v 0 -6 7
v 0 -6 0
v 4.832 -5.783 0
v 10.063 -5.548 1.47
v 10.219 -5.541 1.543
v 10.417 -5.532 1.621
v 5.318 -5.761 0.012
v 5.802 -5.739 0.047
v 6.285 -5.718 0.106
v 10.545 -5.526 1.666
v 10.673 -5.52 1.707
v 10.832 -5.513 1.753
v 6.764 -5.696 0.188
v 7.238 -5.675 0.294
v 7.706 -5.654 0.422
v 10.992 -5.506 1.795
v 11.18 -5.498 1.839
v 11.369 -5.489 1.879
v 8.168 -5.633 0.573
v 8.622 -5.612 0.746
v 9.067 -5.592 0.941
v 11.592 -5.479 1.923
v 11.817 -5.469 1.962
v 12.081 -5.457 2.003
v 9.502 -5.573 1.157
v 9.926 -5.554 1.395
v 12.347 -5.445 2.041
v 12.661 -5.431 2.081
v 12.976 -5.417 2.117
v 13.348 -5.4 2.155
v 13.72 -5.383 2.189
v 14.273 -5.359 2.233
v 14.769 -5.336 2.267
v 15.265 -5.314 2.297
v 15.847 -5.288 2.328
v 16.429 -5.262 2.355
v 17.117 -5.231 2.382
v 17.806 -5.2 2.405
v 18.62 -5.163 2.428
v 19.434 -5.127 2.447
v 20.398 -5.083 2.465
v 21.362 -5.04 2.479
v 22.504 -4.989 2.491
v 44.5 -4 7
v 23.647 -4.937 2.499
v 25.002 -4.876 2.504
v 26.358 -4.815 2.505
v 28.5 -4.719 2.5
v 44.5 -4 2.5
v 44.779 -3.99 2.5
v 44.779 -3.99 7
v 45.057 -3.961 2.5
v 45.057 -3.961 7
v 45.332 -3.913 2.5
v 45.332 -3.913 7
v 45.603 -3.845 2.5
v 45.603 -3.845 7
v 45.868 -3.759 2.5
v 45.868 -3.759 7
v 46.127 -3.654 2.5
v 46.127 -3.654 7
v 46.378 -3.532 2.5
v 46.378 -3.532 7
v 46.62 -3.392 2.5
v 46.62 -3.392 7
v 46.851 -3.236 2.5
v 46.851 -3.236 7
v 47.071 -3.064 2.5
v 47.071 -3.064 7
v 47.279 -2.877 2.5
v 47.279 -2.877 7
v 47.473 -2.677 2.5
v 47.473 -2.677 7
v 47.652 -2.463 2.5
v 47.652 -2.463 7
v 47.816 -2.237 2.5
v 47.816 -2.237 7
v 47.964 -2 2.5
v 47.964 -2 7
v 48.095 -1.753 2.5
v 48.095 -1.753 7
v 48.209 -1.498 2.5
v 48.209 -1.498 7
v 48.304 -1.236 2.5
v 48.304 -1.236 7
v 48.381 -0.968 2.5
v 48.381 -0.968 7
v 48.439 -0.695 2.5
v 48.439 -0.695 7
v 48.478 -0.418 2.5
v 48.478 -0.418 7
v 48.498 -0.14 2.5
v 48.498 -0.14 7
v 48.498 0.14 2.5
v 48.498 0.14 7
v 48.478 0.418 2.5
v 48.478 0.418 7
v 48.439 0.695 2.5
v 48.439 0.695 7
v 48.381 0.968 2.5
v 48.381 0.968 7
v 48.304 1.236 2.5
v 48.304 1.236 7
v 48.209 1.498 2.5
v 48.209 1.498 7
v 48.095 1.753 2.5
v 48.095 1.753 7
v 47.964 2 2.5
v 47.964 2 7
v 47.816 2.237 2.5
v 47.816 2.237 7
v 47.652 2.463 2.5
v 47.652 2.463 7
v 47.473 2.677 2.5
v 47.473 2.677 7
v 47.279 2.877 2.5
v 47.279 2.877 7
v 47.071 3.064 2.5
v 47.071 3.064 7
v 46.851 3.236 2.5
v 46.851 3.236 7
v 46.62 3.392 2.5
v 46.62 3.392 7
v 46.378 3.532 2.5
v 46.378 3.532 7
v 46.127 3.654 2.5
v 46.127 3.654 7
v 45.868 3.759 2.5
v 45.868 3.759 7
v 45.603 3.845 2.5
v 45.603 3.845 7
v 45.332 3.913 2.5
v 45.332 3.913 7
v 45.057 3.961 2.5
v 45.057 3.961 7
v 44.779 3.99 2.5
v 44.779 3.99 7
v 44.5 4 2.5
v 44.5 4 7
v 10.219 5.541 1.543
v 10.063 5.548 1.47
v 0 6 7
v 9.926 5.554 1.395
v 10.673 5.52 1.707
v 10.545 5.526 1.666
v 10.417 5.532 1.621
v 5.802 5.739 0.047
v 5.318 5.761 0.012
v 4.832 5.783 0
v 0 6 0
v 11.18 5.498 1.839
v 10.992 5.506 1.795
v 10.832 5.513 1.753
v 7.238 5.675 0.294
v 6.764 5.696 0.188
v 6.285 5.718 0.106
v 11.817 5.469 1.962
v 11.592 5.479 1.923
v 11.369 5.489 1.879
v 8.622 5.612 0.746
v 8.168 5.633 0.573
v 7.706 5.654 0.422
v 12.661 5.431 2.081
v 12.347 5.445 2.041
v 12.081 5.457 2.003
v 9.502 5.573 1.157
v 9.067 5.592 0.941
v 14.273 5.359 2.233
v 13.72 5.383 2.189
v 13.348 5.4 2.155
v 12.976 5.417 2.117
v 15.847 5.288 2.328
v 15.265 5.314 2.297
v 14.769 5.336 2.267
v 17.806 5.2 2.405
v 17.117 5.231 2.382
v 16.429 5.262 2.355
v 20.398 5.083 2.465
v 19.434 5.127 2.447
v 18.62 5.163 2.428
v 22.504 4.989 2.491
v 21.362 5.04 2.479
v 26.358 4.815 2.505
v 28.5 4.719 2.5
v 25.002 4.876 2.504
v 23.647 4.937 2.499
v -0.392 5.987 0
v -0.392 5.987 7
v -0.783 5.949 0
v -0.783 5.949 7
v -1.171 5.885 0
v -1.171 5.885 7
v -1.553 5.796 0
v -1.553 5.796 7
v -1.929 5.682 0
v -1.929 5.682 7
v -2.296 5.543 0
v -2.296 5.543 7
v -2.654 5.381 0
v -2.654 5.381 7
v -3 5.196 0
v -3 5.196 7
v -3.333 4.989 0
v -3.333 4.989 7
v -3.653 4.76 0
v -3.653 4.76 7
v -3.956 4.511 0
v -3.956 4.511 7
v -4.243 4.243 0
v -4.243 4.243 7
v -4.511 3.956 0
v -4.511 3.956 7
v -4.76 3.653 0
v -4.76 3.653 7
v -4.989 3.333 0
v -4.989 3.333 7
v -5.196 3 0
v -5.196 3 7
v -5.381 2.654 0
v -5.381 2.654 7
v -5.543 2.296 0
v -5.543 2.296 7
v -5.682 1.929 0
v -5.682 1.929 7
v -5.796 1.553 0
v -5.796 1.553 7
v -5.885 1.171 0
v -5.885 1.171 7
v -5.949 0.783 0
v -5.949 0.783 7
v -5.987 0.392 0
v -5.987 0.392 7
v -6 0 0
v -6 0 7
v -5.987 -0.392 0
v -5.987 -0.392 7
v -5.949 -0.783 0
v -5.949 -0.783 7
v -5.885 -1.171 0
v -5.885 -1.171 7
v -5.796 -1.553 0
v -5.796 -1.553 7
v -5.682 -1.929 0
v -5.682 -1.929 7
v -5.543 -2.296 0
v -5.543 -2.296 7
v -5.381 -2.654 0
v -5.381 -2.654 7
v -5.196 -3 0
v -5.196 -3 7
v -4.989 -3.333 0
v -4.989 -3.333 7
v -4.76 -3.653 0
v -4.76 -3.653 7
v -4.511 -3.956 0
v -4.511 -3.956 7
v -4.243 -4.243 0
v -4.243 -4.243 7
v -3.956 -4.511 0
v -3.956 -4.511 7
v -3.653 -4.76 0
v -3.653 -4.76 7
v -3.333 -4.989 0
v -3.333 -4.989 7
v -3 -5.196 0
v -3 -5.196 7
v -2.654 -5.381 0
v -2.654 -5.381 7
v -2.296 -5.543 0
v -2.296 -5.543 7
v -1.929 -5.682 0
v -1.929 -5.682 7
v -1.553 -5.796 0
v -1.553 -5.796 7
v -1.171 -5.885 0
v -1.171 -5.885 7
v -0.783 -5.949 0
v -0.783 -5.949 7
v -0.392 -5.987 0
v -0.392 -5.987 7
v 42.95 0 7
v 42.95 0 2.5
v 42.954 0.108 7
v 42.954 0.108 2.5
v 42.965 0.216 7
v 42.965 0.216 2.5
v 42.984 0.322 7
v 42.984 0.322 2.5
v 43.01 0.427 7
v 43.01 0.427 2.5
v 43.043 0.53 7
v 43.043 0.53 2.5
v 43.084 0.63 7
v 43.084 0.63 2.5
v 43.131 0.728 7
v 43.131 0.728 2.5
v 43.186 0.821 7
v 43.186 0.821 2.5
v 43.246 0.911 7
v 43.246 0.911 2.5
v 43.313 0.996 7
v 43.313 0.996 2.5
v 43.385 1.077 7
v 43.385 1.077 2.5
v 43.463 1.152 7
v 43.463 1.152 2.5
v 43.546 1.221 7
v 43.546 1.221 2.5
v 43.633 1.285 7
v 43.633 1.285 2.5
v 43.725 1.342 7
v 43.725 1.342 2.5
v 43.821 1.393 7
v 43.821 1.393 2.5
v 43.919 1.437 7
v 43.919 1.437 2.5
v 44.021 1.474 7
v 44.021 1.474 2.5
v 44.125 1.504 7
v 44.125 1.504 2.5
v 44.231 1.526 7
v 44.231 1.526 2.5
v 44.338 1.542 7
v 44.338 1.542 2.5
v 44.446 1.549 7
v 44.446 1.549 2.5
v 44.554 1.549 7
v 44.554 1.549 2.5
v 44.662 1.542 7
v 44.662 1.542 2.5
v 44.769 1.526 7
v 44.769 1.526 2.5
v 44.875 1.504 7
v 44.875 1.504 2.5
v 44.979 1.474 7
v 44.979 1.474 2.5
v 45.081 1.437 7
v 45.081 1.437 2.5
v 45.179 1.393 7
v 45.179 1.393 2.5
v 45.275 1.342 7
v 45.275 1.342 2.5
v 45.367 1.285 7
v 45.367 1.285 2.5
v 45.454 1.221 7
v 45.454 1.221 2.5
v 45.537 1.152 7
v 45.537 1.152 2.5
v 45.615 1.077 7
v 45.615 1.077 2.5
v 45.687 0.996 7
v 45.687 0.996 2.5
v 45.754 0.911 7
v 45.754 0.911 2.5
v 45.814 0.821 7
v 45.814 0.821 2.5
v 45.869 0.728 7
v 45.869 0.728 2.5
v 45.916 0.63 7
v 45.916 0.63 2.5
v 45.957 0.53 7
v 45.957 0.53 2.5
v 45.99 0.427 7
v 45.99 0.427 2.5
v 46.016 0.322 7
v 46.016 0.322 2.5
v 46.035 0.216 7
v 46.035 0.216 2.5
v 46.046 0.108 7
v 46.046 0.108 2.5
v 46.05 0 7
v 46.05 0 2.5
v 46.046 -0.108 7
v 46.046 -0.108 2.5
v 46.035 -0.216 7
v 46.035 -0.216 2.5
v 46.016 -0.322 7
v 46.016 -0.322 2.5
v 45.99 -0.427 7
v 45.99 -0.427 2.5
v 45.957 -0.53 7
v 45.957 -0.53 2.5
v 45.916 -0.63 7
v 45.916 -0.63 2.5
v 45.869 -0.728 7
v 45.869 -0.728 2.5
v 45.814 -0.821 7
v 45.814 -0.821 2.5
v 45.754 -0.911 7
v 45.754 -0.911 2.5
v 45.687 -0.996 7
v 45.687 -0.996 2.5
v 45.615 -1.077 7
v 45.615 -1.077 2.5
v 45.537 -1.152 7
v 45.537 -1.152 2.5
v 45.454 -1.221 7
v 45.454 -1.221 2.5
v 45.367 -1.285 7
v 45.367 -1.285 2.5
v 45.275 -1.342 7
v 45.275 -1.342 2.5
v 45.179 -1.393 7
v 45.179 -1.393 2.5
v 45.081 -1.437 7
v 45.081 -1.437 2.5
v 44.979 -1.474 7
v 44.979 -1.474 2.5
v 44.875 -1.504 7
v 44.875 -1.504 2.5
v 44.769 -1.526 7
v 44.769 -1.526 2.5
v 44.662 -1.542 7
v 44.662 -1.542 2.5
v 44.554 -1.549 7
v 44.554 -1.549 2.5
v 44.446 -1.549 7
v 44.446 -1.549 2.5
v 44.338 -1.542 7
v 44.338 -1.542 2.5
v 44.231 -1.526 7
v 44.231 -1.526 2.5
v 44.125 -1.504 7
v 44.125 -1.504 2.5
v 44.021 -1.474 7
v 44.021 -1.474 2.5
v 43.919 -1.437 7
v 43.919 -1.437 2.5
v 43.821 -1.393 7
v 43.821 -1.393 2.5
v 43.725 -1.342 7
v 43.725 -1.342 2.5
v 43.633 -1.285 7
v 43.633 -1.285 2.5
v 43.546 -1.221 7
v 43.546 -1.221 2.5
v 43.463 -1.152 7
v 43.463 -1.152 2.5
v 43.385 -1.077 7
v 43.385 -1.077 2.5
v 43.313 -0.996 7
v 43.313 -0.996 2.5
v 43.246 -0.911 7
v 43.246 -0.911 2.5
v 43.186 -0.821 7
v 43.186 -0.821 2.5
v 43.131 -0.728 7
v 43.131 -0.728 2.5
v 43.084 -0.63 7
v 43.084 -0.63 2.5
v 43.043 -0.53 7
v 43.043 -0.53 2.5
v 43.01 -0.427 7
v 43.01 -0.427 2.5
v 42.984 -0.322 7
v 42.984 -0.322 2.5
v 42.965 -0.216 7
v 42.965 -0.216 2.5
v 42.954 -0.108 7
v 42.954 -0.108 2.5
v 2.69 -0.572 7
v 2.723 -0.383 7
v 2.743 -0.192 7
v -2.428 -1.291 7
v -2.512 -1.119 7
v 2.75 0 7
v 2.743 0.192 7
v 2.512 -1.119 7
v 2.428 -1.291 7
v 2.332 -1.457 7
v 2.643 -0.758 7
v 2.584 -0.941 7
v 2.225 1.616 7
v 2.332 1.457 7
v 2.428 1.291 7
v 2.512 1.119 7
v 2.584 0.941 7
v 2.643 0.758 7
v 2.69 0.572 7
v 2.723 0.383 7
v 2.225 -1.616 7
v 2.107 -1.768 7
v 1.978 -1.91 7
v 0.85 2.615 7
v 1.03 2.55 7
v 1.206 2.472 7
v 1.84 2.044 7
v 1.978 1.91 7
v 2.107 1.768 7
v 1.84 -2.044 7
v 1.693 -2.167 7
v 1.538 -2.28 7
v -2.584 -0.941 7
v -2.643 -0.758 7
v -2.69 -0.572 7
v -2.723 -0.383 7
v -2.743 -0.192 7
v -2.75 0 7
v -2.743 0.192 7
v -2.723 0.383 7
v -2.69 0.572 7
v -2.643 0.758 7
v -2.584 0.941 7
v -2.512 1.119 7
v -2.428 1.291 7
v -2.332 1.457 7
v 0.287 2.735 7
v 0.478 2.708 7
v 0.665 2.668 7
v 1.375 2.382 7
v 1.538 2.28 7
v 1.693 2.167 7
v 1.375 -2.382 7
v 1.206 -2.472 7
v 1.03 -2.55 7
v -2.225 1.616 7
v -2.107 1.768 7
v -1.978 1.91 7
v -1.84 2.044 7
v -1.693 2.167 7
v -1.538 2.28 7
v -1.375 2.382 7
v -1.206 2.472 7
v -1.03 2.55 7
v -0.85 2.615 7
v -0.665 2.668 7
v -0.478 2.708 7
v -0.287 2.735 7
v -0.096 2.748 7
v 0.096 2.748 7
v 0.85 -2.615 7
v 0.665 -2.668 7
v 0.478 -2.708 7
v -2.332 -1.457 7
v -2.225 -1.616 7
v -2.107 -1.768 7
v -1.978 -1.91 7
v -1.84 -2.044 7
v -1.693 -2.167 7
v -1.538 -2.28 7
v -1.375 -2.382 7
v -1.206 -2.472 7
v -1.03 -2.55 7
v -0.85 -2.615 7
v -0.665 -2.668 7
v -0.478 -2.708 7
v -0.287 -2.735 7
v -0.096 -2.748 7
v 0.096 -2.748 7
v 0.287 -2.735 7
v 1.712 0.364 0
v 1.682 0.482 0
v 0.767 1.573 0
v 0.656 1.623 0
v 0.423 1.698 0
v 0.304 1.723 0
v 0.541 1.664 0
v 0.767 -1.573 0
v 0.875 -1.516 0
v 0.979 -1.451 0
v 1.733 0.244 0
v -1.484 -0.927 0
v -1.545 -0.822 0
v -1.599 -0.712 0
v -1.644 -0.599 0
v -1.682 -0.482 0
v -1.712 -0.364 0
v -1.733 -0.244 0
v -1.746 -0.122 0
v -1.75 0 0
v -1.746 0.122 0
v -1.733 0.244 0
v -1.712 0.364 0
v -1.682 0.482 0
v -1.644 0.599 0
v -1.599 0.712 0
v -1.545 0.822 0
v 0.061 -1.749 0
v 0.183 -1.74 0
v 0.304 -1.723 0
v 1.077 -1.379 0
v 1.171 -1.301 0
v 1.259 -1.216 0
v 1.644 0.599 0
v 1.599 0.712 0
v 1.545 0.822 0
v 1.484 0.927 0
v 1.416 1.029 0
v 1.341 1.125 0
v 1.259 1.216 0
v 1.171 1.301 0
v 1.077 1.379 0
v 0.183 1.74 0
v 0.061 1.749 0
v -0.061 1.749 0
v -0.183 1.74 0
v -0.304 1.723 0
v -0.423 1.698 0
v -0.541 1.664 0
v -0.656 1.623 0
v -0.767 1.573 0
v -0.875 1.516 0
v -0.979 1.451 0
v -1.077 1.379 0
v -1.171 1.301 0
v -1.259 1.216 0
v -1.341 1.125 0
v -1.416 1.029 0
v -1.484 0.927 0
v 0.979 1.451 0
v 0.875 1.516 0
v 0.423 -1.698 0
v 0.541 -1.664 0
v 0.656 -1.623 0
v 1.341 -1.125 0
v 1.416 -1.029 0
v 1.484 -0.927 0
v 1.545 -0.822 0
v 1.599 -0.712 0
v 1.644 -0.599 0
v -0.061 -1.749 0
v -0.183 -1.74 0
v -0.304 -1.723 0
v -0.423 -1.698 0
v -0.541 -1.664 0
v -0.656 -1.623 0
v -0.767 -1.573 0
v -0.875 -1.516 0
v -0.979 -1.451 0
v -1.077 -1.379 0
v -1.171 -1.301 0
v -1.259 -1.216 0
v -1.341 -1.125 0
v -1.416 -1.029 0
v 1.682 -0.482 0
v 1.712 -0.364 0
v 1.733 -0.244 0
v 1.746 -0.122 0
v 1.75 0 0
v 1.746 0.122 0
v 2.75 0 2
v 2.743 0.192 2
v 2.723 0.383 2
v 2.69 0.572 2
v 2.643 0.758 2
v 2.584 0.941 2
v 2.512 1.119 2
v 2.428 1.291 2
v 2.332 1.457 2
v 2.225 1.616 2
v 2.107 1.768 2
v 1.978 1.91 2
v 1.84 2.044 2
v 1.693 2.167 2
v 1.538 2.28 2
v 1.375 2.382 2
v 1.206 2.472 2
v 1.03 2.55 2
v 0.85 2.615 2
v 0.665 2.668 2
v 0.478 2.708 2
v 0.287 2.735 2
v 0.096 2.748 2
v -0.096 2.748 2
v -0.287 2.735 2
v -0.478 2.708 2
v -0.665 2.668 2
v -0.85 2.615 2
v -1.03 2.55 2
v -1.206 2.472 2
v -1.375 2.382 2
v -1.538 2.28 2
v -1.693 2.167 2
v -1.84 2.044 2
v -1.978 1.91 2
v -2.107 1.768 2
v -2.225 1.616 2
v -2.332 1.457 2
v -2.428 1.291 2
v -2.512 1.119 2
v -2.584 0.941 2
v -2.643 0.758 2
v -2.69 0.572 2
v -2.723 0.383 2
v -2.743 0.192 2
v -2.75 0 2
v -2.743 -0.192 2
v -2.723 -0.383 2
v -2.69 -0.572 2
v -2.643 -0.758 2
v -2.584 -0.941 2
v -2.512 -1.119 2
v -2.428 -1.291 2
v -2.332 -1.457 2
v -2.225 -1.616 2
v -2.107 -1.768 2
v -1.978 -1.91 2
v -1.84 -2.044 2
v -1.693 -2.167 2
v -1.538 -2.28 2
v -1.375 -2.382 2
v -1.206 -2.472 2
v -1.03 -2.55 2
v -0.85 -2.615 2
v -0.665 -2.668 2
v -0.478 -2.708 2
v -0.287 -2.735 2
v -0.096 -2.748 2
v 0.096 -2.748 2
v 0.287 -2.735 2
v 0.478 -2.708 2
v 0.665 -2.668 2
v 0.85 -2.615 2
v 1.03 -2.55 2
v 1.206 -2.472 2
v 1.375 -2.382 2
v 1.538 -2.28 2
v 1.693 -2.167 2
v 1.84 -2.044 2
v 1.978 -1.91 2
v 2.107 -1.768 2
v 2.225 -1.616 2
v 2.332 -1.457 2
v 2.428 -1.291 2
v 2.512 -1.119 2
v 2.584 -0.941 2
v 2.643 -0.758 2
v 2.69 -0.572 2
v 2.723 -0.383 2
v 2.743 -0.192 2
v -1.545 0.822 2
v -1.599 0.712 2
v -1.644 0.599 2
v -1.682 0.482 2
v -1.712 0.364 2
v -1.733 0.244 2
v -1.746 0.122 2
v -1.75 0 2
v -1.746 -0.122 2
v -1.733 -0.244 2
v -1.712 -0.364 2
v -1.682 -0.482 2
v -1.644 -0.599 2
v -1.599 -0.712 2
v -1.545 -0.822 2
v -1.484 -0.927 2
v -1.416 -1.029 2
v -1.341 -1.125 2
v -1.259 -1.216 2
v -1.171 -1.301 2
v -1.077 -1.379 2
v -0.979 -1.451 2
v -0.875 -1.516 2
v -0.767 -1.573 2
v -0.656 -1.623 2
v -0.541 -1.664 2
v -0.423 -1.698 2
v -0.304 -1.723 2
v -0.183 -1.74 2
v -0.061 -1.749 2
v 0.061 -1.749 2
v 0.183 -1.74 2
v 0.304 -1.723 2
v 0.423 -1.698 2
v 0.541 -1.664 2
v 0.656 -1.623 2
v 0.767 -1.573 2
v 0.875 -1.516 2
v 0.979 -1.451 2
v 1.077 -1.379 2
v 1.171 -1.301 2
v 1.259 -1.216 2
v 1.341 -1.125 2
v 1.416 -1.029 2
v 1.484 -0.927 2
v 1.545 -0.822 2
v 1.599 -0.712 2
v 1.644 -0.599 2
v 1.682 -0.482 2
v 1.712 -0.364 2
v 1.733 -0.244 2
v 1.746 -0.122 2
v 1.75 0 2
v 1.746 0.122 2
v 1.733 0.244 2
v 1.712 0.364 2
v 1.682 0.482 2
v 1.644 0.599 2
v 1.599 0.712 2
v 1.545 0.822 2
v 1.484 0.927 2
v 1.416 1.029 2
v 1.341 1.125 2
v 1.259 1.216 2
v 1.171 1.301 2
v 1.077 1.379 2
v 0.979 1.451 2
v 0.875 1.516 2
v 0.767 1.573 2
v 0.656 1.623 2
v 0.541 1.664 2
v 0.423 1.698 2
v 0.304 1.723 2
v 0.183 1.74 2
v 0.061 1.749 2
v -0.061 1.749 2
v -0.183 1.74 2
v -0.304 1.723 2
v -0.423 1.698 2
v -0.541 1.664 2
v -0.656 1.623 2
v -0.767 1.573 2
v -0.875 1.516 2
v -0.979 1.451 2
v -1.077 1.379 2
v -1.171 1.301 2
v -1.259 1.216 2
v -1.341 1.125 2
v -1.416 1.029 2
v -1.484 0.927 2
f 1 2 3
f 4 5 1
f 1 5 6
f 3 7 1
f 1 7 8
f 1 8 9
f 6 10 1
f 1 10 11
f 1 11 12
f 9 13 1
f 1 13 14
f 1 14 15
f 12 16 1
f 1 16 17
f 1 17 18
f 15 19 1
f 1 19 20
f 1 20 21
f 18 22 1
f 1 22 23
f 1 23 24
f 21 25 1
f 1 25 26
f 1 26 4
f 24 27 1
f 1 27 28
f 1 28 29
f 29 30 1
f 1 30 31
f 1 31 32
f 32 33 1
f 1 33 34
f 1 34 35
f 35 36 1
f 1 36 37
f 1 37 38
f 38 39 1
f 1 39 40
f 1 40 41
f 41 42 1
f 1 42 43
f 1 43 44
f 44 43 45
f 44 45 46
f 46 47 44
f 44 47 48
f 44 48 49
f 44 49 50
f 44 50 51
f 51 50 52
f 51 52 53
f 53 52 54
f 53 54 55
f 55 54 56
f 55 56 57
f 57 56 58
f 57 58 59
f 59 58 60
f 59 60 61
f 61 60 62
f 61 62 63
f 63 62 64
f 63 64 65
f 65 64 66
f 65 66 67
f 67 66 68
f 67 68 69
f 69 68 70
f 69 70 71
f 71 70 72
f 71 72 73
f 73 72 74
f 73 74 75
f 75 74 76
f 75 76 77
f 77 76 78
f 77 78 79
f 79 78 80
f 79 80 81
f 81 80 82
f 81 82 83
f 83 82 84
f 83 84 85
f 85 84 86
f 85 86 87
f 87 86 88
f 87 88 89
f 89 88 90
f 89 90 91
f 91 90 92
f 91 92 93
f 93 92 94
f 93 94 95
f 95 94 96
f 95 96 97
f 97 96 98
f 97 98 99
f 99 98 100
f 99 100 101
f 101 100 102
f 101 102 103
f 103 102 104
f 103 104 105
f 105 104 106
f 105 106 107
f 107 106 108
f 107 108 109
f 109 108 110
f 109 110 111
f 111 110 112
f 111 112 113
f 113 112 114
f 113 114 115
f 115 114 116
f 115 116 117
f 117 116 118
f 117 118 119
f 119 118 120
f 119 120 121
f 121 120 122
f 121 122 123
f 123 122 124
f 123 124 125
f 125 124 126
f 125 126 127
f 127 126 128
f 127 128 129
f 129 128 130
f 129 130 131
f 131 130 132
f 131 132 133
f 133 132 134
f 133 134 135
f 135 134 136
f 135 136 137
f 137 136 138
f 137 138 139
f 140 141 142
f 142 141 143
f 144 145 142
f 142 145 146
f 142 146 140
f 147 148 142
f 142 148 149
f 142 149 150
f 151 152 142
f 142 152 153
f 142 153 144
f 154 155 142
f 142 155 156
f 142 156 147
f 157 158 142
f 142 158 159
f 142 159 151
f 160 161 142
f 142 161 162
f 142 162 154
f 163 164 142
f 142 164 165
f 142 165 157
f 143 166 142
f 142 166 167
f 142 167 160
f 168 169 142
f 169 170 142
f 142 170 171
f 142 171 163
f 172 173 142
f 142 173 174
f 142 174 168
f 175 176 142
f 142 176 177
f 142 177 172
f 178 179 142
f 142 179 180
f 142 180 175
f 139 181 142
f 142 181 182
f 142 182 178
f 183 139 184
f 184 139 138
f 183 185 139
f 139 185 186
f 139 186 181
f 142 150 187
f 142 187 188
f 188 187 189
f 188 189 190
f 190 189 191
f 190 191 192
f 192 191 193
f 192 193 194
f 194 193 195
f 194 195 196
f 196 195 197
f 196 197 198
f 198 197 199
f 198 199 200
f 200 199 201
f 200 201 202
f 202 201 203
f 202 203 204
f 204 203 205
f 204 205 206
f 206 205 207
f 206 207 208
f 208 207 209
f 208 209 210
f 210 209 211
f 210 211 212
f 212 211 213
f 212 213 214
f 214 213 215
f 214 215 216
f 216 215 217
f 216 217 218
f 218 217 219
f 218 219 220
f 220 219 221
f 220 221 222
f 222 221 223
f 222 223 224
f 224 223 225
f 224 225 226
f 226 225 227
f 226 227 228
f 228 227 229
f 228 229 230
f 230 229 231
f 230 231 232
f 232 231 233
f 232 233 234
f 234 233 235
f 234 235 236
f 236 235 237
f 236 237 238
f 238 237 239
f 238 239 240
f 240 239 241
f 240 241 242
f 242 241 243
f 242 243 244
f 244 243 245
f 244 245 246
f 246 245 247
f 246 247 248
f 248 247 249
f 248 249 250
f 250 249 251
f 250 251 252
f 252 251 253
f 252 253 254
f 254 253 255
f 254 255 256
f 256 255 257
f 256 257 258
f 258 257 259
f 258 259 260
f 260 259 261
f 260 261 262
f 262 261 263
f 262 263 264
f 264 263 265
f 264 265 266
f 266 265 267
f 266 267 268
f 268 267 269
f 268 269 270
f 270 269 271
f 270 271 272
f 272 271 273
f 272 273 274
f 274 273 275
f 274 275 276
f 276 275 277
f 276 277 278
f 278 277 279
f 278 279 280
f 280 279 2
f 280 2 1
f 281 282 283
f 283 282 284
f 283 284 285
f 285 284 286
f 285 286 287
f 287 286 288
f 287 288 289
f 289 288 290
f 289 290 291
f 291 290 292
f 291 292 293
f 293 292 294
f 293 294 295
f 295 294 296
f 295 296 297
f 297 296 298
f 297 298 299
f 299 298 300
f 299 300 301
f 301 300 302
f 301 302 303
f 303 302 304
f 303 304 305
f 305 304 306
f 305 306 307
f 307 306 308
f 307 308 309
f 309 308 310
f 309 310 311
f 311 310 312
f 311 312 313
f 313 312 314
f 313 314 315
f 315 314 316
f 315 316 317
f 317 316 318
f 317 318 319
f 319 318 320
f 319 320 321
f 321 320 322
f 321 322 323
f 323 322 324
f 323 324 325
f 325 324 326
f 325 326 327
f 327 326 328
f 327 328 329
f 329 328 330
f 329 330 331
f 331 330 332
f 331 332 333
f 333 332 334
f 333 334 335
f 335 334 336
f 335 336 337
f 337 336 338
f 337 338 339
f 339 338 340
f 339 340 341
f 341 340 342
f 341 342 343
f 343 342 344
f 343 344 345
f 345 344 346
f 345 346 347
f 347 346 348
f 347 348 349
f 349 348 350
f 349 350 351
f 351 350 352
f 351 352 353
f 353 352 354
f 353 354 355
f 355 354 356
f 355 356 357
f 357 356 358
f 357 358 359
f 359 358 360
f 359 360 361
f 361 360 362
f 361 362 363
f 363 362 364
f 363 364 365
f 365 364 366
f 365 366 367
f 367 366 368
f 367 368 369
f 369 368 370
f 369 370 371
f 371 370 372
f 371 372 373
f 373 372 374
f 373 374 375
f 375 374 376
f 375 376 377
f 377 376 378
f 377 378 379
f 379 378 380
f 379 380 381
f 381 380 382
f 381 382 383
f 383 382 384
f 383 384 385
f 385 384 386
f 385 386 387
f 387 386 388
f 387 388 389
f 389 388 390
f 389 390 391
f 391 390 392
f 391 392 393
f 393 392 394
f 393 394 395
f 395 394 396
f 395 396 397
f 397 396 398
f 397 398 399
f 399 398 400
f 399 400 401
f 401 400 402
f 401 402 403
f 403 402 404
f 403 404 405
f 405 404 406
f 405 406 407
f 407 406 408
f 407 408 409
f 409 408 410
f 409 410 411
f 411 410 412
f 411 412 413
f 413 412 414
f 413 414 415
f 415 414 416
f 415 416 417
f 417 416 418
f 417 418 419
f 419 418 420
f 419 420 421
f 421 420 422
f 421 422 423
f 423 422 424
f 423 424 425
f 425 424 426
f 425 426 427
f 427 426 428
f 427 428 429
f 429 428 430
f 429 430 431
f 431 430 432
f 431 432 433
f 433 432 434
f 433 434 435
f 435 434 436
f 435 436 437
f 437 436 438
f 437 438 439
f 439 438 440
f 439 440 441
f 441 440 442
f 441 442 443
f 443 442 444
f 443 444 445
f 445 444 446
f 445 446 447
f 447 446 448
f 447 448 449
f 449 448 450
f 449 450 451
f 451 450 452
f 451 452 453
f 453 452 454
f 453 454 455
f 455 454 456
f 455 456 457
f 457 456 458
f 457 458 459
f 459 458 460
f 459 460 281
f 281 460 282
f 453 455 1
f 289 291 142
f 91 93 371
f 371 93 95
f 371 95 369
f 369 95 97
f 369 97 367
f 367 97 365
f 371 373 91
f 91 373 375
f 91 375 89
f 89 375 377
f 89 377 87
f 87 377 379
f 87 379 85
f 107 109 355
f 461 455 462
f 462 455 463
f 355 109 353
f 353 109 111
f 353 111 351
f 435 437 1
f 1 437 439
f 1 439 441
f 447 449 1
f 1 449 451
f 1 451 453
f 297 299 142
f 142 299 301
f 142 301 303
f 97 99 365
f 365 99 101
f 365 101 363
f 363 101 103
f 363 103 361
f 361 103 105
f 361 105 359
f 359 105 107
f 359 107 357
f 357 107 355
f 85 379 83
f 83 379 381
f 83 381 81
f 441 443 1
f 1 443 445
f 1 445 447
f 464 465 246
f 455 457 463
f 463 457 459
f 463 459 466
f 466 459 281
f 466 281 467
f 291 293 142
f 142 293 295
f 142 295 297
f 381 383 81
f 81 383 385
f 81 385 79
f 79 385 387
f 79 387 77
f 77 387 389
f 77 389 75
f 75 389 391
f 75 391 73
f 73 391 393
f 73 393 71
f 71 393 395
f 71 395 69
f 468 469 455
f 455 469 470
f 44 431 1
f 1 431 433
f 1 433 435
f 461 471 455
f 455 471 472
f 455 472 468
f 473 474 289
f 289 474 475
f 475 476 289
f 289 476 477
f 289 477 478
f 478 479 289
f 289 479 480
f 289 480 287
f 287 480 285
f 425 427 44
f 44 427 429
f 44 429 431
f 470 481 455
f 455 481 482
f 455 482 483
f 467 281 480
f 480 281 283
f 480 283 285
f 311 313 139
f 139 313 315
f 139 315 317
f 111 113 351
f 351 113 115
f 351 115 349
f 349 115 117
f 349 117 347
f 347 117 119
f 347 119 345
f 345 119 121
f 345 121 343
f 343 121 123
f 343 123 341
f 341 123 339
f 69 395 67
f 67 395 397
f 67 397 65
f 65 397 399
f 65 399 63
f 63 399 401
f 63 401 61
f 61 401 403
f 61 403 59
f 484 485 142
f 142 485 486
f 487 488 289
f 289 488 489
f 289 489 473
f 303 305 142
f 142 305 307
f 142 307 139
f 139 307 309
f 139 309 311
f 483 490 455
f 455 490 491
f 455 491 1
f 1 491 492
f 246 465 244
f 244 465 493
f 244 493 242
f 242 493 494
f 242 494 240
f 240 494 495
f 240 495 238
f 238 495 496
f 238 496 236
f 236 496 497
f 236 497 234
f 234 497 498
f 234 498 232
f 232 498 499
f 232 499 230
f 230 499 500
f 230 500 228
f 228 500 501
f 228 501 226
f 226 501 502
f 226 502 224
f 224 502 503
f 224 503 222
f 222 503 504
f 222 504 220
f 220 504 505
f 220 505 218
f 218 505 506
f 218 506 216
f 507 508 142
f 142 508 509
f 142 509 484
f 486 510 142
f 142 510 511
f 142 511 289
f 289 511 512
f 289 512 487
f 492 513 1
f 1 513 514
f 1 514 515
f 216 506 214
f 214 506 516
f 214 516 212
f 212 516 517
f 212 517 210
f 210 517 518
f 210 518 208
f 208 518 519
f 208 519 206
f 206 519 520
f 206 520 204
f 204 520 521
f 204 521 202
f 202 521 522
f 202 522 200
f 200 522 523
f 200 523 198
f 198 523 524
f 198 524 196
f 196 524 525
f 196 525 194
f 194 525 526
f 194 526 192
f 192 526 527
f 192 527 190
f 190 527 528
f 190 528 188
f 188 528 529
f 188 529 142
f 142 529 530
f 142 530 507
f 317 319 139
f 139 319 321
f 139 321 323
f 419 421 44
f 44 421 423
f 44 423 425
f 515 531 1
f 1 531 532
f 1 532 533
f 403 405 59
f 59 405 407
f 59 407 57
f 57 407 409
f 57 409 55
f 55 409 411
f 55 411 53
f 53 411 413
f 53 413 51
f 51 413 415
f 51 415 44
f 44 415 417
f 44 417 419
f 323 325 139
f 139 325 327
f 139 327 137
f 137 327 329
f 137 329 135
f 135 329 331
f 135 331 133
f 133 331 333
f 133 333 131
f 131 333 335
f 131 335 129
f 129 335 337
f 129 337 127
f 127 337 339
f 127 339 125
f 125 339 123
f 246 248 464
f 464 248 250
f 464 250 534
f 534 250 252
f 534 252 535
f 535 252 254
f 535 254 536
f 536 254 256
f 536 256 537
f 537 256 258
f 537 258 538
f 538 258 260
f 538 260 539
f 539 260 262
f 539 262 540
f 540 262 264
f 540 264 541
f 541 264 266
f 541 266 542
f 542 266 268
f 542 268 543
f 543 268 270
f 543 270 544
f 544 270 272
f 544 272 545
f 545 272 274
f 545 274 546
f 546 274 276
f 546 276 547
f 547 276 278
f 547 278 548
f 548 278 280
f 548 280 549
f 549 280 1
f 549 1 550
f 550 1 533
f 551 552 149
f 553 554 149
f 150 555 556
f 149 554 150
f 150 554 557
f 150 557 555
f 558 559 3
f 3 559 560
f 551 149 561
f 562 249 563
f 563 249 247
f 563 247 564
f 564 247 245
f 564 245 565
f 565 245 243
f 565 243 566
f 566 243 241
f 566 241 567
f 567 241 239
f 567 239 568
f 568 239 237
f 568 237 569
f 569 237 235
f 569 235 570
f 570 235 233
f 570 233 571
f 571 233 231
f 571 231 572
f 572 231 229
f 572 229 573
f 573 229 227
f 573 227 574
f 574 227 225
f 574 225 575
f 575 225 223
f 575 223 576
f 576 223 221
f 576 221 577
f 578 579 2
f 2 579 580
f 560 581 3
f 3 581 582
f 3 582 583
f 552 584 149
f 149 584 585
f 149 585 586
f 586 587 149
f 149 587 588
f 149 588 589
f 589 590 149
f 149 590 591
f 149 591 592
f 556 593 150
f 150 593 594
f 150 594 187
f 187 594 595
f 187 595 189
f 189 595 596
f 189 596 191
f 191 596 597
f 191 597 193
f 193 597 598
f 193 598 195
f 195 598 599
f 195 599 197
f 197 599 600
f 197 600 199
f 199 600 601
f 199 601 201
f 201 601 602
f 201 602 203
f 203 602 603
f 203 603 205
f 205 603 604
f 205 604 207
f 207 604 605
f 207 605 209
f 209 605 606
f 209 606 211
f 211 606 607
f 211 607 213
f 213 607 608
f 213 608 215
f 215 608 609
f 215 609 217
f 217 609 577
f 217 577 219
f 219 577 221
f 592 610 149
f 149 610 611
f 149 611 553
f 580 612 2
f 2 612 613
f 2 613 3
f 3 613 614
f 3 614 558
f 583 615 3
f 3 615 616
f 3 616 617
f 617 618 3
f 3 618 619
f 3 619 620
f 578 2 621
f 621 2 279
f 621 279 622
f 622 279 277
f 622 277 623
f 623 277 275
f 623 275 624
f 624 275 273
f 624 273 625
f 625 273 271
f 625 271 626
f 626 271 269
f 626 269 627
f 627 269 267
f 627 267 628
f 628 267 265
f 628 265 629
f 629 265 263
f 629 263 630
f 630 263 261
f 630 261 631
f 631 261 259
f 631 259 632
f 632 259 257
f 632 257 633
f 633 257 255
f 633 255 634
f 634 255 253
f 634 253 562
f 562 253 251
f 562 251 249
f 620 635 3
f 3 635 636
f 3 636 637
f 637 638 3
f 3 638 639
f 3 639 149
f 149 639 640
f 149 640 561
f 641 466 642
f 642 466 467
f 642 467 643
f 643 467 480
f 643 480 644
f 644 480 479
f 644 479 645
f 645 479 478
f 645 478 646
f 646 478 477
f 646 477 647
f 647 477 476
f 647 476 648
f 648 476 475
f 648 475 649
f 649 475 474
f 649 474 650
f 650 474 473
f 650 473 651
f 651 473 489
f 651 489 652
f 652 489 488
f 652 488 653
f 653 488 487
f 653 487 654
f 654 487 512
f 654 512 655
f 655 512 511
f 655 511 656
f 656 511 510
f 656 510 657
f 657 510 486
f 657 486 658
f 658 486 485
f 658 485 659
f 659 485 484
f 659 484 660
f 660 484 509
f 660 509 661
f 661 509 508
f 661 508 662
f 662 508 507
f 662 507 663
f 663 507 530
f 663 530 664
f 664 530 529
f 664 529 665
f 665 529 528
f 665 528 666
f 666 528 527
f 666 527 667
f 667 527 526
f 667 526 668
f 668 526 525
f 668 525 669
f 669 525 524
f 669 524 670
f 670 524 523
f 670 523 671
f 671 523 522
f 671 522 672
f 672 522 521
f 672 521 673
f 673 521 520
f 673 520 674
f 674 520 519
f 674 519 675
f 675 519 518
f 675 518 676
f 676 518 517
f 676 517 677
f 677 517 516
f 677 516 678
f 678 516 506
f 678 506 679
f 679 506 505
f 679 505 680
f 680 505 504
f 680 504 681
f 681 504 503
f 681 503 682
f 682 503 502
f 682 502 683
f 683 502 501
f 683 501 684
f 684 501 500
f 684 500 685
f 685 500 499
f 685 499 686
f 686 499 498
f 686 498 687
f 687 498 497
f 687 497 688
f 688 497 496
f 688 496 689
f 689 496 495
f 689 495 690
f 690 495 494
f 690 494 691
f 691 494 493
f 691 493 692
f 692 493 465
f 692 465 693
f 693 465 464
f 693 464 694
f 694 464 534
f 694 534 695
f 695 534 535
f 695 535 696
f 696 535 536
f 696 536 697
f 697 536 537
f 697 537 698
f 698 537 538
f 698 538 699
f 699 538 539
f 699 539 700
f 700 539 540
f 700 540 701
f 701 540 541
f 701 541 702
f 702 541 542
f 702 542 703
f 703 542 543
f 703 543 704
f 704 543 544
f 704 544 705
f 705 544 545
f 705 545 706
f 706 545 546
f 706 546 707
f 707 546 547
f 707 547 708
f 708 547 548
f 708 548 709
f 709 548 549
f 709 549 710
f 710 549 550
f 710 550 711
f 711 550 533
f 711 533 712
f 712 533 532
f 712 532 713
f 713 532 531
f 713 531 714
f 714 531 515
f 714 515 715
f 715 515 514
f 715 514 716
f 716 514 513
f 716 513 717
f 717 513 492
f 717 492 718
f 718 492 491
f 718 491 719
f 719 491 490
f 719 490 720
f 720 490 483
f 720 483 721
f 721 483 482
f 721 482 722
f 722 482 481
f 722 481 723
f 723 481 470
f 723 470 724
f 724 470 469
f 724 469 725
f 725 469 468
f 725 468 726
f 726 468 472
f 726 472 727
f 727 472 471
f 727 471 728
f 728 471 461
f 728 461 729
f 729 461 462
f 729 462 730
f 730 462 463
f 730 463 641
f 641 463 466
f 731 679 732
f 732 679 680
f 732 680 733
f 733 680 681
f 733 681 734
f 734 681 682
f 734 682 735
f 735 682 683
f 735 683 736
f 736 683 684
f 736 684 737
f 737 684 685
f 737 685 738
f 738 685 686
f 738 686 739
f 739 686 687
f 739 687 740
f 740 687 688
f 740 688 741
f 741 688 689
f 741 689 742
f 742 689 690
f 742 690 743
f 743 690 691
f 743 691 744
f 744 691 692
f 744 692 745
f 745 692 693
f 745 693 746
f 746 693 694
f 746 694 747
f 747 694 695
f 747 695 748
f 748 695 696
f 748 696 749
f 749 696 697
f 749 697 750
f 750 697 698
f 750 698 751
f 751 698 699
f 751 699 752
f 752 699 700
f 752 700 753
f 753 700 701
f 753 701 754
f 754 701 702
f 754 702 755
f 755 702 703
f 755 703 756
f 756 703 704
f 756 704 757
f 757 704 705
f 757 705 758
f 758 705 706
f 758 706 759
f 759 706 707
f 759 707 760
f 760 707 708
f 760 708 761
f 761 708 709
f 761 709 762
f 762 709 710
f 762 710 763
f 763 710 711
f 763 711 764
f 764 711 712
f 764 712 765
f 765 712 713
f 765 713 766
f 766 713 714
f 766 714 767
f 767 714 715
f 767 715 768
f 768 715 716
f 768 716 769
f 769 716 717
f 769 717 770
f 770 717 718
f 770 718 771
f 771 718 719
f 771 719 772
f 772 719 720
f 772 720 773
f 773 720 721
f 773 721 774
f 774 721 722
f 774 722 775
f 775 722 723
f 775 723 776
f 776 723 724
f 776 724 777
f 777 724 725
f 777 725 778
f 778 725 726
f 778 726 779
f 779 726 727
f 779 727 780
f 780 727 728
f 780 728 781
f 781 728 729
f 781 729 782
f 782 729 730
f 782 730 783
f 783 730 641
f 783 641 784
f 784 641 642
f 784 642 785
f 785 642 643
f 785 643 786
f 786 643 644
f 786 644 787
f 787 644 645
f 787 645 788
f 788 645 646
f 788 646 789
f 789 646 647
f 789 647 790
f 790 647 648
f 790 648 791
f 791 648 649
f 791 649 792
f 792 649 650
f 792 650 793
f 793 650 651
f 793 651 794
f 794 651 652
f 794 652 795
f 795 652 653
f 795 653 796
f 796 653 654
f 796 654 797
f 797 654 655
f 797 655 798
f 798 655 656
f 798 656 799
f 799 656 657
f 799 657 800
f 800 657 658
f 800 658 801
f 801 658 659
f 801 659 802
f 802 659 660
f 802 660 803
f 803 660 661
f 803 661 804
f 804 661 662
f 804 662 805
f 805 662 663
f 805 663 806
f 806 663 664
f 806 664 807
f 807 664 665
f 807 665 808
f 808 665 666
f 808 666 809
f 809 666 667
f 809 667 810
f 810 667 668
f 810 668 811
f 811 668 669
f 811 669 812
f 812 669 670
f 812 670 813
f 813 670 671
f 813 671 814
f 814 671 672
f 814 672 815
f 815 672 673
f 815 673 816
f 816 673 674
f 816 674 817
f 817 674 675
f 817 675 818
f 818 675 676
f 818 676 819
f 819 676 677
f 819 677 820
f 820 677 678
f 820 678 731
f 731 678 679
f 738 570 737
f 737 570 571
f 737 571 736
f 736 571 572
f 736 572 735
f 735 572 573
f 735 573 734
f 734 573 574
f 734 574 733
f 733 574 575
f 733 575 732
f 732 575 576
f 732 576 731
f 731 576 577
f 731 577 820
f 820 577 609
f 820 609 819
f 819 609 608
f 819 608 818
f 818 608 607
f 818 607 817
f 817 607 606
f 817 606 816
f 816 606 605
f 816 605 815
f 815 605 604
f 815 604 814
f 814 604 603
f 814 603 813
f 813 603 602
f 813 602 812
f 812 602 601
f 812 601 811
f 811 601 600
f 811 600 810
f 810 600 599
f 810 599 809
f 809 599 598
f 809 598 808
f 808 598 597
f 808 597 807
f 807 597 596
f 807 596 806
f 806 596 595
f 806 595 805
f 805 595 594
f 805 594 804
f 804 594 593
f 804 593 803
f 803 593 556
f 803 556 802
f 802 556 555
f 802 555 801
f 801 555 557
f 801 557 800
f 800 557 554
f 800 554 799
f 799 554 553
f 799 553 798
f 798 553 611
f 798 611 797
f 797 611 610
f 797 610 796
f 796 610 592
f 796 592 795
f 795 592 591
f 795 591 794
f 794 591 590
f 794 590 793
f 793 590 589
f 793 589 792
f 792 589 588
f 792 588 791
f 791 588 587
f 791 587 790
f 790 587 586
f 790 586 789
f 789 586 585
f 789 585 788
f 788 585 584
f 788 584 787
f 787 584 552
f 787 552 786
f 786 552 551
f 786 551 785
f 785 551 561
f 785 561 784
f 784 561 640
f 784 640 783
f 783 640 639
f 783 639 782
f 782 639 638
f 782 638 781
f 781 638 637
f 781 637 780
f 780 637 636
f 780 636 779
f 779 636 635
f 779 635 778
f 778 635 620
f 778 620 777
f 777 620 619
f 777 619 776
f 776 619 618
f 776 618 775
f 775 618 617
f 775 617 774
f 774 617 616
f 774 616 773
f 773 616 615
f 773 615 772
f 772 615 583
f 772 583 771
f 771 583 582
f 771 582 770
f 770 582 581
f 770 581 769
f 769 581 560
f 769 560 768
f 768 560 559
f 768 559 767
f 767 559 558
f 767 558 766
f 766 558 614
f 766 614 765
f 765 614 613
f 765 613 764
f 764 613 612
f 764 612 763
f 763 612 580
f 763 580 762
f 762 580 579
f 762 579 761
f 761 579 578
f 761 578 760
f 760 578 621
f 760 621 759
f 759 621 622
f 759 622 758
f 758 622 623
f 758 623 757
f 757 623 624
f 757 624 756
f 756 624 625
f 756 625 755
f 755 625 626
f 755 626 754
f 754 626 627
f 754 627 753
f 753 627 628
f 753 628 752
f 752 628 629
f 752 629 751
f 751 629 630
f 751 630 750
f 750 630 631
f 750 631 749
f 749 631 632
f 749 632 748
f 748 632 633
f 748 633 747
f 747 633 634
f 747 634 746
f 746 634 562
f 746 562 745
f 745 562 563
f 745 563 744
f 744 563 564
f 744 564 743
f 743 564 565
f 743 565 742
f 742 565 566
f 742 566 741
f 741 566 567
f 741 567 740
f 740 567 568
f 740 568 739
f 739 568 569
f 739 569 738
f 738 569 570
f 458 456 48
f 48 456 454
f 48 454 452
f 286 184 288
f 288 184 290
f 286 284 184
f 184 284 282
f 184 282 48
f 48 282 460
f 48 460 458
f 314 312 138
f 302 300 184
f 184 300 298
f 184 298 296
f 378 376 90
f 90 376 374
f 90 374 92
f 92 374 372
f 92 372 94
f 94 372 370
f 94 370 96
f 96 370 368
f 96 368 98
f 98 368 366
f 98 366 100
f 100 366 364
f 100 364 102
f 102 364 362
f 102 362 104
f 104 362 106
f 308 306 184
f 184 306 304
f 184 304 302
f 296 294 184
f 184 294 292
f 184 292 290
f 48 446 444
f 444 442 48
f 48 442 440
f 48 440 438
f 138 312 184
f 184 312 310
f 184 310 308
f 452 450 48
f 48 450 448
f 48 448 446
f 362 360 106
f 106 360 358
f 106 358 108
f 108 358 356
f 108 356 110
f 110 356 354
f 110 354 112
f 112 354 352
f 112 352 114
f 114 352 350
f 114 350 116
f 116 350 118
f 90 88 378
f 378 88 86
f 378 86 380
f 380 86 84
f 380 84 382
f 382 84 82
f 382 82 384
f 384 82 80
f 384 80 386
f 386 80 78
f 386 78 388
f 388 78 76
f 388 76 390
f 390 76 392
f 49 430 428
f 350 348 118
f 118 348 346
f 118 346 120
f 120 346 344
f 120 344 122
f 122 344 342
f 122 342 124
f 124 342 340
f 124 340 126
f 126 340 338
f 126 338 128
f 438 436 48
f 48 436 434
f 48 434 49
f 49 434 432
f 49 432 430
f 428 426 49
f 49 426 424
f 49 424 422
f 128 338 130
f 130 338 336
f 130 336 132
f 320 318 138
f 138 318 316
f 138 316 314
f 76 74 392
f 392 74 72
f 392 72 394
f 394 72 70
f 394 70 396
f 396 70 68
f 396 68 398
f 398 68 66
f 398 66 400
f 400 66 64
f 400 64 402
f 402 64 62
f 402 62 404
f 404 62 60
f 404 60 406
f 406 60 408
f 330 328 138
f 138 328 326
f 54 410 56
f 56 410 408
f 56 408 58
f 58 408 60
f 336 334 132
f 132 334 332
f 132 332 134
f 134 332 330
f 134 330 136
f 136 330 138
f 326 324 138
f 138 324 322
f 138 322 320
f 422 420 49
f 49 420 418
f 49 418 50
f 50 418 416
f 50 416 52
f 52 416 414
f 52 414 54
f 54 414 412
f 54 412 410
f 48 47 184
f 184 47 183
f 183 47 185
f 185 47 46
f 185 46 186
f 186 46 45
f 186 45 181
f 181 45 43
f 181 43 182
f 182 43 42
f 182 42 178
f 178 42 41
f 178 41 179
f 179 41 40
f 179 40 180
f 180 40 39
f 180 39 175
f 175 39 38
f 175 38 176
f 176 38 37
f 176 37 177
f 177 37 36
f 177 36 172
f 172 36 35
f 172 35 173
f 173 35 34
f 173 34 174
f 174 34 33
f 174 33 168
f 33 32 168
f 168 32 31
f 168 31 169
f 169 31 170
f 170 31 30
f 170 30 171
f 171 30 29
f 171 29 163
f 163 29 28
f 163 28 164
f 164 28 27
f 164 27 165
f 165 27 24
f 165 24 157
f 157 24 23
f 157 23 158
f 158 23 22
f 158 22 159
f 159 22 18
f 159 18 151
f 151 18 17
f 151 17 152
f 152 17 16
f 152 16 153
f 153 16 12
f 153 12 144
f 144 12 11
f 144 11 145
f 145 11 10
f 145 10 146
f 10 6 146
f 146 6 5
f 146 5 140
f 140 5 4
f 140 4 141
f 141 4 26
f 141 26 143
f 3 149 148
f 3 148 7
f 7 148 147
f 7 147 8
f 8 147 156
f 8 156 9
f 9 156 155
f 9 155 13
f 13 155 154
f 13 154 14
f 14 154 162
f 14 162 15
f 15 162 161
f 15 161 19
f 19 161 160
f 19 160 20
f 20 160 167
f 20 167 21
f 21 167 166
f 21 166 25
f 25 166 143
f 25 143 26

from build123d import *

# Parameters (mm, degrees)
SKETCH1_R               = 1.55
BOSS_EXTRUDE1_DEPTH     = 7
SKETCH2_R               = 2.75
CUT_EXTRUDE1_DEPTH      = 5
SKETCH3_R               = 1.75
CUT_EXTRUDE2_DEPTH      = 5
CUT_EXTRUDE4_DEPTH      = 7
CUT_EXTRUDE4_DEPTH_BACK = 7
FILLET1_R               = 10


with BuildPart() as part:
    # Sketch1 → Boss-Extrude1 (new body)
    with BuildSketch(Plane.XY):
        with BuildLine():
            ThreePointArc((0, 6), (-6, 0), (0, -6))
            Line((0, -6), (44.5, -4))
            ThreePointArc((44.5, -4), (48.5, 0), (44.5, 4))
            Line((44.5, 4), (0, 6))
        make_face()
        with Locations((44.5, 0)):
            Circle(SKETCH1_R, mode=Mode.SUBTRACT)
    extrude(amount=BOSS_EXTRUDE1_DEPTH)

    # Sketch2 → Cut-Extrude1 (cut)
    with BuildSketch(Plane.XY.offset(7)):
        Circle(SKETCH2_R)
    extrude(amount=-CUT_EXTRUDE1_DEPTH, mode=Mode.SUBTRACT)

    # Sketch3 → Cut-Extrude2 (cut)
    with BuildSketch(Plane(origin=(0, 0, 0), x_dir=(-1, 0, 0), z_dir=(0, 0, -1))):
        Circle(SKETCH3_R)
    extrude(amount=-CUT_EXTRUDE2_DEPTH, mode=Mode.SUBTRACT)

    # Sketch5 → Cut-Extrude4 (cut, two sides)
    with BuildSketch(Plane(origin=(0, 0, 0), x_dir=(1, 0, 0), z_dir=(0, 1, 0))) as cut_extrude4_sk:
        with BuildLine():
            Line((48.5, 0), (48.5, -2.5))
            Line((48.5, -2.5), (28.5, -2.5))
            add(Edge.make_bspline(
                [(9, 0), (9.734542775, -1.732075598), (8.772191405, -2.578671179), (28.5, -2.5)],
                knots=[0, 0, 0, 0, 1, 1, 1, 1], degree=3))
            Line((9, 0), (48.5, 0))
        make_face()
    extrude(amount=CUT_EXTRUDE4_DEPTH, mode=Mode.SUBTRACT)
    extrude(cut_extrude4_sk.sketch, amount=-CUT_EXTRUDE4_DEPTH_BACK, mode=Mode.SUBTRACT)

    # Fillet1
    fillet1_edges = [part.edges().sort_by_distance(p)[0] for p in [
        (9, 2.797752809, 0),
    ]]
    fillet(fillet1_edges, radius=FILLET1_R)


solid = part.part
